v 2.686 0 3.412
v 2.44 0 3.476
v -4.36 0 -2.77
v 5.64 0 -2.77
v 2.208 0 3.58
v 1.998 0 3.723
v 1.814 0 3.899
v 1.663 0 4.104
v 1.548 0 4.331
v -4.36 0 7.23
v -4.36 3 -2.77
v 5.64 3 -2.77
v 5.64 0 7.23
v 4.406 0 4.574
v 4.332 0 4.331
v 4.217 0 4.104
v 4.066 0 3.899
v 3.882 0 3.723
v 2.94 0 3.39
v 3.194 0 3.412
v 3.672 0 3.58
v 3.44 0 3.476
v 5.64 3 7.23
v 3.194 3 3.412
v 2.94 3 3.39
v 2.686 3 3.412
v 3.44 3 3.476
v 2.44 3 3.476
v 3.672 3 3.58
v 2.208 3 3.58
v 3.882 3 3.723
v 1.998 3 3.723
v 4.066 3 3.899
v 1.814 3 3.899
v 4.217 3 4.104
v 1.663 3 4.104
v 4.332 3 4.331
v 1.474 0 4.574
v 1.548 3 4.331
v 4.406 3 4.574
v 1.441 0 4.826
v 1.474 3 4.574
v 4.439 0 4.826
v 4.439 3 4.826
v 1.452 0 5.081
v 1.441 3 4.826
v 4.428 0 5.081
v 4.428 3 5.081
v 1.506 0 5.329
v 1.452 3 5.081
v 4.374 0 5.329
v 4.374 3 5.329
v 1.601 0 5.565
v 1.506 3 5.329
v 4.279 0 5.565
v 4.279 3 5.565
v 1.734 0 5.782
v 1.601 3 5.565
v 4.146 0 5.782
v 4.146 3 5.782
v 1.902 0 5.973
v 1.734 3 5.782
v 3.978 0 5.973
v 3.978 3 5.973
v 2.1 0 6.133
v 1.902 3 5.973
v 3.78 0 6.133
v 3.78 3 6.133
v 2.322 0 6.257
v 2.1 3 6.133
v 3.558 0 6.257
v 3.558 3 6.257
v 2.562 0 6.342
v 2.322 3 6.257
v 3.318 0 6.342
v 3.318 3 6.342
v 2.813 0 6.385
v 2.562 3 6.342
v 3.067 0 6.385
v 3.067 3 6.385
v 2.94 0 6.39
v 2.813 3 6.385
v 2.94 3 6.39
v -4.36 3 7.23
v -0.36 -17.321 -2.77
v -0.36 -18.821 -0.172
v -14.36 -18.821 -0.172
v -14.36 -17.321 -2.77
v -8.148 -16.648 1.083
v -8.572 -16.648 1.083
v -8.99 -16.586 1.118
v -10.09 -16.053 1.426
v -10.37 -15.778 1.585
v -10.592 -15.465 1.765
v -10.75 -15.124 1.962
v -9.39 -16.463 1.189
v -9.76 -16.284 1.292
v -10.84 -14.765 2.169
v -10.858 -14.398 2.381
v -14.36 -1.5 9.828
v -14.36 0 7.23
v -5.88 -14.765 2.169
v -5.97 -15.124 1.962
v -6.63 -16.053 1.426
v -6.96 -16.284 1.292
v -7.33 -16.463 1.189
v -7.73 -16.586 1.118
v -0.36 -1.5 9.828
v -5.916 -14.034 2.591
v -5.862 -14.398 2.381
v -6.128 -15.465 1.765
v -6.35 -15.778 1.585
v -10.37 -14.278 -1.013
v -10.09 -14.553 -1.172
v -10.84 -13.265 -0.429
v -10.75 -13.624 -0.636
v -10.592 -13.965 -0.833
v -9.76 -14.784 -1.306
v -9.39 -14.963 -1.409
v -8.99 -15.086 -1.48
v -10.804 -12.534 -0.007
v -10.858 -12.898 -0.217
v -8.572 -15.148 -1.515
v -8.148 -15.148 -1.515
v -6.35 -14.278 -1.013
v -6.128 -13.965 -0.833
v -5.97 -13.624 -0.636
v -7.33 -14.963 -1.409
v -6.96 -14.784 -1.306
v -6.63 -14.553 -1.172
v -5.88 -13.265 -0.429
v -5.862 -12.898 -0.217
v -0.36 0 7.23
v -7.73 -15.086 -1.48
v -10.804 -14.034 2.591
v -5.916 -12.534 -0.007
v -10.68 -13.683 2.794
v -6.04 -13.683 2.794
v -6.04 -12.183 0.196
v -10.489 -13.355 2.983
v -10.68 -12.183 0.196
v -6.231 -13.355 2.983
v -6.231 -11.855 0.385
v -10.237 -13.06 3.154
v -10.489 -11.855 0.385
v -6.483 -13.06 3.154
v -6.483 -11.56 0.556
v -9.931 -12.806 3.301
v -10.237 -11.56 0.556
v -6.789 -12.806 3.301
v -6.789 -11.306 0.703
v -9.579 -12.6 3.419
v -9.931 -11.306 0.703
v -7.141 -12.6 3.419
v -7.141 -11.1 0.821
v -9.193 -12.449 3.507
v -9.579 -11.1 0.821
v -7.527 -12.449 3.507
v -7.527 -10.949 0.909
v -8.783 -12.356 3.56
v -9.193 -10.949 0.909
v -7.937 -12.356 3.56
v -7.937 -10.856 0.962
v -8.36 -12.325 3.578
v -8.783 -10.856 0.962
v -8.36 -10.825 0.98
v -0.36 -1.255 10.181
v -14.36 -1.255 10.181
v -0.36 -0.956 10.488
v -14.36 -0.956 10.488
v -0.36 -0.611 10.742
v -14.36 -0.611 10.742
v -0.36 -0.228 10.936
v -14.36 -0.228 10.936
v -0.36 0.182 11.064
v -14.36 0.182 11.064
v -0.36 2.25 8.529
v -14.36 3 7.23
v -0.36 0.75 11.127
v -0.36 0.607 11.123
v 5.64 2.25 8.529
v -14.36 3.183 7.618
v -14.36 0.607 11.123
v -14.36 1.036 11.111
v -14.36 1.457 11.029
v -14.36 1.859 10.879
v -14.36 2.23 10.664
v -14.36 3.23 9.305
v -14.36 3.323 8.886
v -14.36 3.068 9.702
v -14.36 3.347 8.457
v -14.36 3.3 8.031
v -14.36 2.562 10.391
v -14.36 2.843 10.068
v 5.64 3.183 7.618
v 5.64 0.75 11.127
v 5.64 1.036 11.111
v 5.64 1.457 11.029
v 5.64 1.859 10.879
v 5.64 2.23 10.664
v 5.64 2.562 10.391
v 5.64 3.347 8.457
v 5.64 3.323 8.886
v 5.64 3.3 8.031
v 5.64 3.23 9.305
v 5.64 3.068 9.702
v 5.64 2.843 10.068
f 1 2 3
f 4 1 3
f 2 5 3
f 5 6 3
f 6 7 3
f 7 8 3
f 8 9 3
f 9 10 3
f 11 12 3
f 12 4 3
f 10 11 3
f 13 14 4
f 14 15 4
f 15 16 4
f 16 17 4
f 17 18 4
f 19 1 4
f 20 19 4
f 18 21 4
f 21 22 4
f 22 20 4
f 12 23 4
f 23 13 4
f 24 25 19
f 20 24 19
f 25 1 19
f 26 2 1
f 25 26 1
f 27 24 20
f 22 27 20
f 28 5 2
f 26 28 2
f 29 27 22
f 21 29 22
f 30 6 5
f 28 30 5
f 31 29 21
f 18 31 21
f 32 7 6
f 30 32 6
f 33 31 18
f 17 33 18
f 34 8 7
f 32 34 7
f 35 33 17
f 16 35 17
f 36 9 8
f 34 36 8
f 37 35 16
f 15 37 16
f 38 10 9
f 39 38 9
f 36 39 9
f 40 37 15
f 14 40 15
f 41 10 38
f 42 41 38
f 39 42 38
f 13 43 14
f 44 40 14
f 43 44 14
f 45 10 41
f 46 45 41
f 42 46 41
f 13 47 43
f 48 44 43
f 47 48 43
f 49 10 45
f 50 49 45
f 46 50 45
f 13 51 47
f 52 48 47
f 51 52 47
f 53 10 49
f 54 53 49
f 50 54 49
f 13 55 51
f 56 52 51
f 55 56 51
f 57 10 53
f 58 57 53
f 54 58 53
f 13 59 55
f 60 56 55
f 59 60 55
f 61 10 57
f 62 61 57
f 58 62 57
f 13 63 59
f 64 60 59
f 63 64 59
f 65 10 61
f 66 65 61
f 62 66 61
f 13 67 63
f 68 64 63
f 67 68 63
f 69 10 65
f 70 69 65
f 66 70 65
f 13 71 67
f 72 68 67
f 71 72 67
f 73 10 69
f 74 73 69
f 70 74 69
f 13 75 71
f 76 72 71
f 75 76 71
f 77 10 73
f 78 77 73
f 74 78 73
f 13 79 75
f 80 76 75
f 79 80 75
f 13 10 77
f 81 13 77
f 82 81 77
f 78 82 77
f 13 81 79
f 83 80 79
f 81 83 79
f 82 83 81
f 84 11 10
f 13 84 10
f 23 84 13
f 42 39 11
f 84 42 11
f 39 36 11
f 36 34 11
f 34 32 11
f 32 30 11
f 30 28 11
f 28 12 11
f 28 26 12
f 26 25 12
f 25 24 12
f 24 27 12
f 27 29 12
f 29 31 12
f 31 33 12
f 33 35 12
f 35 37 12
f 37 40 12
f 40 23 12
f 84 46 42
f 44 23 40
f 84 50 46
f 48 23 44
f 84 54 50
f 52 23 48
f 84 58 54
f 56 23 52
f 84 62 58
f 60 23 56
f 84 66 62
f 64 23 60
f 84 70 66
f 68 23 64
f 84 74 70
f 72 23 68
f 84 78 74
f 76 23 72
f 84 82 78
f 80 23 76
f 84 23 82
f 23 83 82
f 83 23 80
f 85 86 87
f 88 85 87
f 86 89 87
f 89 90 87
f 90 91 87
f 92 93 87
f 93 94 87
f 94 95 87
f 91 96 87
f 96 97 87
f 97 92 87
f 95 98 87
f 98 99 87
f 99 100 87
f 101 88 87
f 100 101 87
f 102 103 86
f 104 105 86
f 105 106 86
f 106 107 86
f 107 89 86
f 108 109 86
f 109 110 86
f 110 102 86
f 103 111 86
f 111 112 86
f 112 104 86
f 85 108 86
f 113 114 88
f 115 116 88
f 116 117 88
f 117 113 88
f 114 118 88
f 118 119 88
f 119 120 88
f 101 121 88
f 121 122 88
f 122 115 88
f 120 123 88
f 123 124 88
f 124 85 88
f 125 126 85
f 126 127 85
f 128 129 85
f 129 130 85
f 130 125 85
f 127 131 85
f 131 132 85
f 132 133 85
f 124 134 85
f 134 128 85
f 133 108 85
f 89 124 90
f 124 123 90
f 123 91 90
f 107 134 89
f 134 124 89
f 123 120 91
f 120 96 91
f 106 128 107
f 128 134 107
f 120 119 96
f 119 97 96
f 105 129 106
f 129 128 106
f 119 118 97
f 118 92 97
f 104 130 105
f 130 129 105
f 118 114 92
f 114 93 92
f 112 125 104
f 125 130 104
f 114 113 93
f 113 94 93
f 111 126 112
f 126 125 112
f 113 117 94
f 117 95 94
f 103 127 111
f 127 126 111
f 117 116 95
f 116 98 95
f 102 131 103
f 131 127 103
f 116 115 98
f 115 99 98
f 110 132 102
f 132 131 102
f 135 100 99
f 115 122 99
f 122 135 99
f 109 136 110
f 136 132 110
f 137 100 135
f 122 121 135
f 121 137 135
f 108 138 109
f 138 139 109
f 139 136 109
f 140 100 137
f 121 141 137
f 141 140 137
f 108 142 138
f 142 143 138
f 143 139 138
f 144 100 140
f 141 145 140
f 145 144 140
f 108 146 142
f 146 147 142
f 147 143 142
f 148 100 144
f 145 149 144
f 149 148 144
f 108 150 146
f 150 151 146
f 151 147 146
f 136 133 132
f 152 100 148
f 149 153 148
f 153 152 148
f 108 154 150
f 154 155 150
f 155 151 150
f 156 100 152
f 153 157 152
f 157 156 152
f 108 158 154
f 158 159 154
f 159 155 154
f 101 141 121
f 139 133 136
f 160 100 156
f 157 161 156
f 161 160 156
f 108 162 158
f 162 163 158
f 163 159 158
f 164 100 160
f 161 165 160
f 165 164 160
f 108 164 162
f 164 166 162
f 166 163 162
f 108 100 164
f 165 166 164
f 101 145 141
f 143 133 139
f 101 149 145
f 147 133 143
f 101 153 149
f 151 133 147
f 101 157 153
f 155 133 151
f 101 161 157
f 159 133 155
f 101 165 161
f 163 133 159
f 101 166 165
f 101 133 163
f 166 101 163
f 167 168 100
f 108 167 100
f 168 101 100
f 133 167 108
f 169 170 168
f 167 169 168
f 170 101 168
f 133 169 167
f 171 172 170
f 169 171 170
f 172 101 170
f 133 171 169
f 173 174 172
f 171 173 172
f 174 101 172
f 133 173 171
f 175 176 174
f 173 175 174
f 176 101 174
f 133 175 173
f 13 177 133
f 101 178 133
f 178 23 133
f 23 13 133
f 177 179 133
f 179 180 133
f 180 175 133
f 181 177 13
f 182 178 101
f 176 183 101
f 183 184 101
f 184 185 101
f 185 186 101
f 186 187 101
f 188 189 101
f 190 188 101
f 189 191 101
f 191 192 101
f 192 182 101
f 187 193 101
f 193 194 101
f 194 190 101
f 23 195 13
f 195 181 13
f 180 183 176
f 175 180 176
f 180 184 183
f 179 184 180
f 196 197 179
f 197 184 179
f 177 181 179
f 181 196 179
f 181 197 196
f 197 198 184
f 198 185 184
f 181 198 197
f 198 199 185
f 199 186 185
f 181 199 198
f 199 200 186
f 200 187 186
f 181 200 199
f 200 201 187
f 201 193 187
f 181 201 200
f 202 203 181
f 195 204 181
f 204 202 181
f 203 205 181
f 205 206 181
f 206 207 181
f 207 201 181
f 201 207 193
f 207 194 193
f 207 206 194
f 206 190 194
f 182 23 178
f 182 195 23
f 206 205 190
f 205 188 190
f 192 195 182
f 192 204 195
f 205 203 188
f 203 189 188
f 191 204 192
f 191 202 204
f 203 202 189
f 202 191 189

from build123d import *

# Parameters (mm, degrees)
SKETCH_1_W          = 10
SKETCH_1_H          = 10
SKETCH_1_R          = 1.5
EXTRUDE_1_DEPTH     = 3
EXTRUDE_3_DEPTH     = 20
SKETCH_4_R          = 2.5
CUT_EXTRUDE_1_DEPTH = 10
SKETCH_5_W          = 6
SKETCH_5_H          = 22.598076211
CUT_EXTRUDE_2_DEPTH = 10


with BuildPart() as part:
    # 草圖1 → 填料-伸長1 (new body)
    with BuildSketch(Plane(origin=(0, 0, 0), x_dir=(1, 0, 0), z_dir=(0, 1, 0))):
        with Locations((0.64, -2.23)):
            Rectangle(SKETCH_1_W, SKETCH_1_H)
        with Locations(Location((2.94, -4.89, 0), (0, 0, 270))):
            Circle(SKETCH_1_R, mode=Mode.SUBTRACT)
    extrude(amount=EXTRUDE_1_DEPTH)


with BuildPart() as body_2:
    # 草圖3 → 填料-伸長3 (new body)
    with BuildSketch(Plane(origin=(5.64, 0, 0), x_dir=(0, 0, -1), z_dir=(1, 0, 0))):
        with BuildLine():
            ThreePointArc((-7.23, 3), (-10.779038106, 2.049038106), (-9.828076211, -1.5))
            Line((-9.828076211, -1.5), (-7.23, 0))
            Line((-7.23, 0), (-7.23, 3))
        make_face()
        Polygon((-9.828076211, -1.5), (-7.23, 0), (2.77, -17.320508076), (0.171923789, -18.820508076), align=None)
    extrude(amount=-EXTRUDE_3_DEPTH)

    # 草圖4 → 除料-伸長1 (cut)
    with BuildSketch(Plane(origin=(0, -3.130681835, 5.4225), x_dir=(-1, 0, 0), z_dir=(0, 0.4999999999999977, -0.8660254037844399))):
        with Locations(Location((8.36, -11.385, 0), (0, 0, 90))):
            Circle(SKETCH_4_R)
    extrude(amount=-CUT_EXTRUDE_1_DEPTH, mode=Mode.SUBTRACT)

    # 草圖5 → 除料-伸長2 (cut)
    with BuildSketch(Plane(origin=(0, -3.130681835, 5.4225), x_dir=(-1, 0, 0), z_dir=(0, 0.4999999999999977, -0.8660254037844399))):
        with Locations((-2.64, -5.085961895)):
            Rectangle(SKETCH_5_W, SKETCH_5_H)
    extrude(amount=-CUT_EXTRUDE_2_DEPTH, mode=Mode.SUBTRACT)


solid = Compound([part.part, body_2.part])
